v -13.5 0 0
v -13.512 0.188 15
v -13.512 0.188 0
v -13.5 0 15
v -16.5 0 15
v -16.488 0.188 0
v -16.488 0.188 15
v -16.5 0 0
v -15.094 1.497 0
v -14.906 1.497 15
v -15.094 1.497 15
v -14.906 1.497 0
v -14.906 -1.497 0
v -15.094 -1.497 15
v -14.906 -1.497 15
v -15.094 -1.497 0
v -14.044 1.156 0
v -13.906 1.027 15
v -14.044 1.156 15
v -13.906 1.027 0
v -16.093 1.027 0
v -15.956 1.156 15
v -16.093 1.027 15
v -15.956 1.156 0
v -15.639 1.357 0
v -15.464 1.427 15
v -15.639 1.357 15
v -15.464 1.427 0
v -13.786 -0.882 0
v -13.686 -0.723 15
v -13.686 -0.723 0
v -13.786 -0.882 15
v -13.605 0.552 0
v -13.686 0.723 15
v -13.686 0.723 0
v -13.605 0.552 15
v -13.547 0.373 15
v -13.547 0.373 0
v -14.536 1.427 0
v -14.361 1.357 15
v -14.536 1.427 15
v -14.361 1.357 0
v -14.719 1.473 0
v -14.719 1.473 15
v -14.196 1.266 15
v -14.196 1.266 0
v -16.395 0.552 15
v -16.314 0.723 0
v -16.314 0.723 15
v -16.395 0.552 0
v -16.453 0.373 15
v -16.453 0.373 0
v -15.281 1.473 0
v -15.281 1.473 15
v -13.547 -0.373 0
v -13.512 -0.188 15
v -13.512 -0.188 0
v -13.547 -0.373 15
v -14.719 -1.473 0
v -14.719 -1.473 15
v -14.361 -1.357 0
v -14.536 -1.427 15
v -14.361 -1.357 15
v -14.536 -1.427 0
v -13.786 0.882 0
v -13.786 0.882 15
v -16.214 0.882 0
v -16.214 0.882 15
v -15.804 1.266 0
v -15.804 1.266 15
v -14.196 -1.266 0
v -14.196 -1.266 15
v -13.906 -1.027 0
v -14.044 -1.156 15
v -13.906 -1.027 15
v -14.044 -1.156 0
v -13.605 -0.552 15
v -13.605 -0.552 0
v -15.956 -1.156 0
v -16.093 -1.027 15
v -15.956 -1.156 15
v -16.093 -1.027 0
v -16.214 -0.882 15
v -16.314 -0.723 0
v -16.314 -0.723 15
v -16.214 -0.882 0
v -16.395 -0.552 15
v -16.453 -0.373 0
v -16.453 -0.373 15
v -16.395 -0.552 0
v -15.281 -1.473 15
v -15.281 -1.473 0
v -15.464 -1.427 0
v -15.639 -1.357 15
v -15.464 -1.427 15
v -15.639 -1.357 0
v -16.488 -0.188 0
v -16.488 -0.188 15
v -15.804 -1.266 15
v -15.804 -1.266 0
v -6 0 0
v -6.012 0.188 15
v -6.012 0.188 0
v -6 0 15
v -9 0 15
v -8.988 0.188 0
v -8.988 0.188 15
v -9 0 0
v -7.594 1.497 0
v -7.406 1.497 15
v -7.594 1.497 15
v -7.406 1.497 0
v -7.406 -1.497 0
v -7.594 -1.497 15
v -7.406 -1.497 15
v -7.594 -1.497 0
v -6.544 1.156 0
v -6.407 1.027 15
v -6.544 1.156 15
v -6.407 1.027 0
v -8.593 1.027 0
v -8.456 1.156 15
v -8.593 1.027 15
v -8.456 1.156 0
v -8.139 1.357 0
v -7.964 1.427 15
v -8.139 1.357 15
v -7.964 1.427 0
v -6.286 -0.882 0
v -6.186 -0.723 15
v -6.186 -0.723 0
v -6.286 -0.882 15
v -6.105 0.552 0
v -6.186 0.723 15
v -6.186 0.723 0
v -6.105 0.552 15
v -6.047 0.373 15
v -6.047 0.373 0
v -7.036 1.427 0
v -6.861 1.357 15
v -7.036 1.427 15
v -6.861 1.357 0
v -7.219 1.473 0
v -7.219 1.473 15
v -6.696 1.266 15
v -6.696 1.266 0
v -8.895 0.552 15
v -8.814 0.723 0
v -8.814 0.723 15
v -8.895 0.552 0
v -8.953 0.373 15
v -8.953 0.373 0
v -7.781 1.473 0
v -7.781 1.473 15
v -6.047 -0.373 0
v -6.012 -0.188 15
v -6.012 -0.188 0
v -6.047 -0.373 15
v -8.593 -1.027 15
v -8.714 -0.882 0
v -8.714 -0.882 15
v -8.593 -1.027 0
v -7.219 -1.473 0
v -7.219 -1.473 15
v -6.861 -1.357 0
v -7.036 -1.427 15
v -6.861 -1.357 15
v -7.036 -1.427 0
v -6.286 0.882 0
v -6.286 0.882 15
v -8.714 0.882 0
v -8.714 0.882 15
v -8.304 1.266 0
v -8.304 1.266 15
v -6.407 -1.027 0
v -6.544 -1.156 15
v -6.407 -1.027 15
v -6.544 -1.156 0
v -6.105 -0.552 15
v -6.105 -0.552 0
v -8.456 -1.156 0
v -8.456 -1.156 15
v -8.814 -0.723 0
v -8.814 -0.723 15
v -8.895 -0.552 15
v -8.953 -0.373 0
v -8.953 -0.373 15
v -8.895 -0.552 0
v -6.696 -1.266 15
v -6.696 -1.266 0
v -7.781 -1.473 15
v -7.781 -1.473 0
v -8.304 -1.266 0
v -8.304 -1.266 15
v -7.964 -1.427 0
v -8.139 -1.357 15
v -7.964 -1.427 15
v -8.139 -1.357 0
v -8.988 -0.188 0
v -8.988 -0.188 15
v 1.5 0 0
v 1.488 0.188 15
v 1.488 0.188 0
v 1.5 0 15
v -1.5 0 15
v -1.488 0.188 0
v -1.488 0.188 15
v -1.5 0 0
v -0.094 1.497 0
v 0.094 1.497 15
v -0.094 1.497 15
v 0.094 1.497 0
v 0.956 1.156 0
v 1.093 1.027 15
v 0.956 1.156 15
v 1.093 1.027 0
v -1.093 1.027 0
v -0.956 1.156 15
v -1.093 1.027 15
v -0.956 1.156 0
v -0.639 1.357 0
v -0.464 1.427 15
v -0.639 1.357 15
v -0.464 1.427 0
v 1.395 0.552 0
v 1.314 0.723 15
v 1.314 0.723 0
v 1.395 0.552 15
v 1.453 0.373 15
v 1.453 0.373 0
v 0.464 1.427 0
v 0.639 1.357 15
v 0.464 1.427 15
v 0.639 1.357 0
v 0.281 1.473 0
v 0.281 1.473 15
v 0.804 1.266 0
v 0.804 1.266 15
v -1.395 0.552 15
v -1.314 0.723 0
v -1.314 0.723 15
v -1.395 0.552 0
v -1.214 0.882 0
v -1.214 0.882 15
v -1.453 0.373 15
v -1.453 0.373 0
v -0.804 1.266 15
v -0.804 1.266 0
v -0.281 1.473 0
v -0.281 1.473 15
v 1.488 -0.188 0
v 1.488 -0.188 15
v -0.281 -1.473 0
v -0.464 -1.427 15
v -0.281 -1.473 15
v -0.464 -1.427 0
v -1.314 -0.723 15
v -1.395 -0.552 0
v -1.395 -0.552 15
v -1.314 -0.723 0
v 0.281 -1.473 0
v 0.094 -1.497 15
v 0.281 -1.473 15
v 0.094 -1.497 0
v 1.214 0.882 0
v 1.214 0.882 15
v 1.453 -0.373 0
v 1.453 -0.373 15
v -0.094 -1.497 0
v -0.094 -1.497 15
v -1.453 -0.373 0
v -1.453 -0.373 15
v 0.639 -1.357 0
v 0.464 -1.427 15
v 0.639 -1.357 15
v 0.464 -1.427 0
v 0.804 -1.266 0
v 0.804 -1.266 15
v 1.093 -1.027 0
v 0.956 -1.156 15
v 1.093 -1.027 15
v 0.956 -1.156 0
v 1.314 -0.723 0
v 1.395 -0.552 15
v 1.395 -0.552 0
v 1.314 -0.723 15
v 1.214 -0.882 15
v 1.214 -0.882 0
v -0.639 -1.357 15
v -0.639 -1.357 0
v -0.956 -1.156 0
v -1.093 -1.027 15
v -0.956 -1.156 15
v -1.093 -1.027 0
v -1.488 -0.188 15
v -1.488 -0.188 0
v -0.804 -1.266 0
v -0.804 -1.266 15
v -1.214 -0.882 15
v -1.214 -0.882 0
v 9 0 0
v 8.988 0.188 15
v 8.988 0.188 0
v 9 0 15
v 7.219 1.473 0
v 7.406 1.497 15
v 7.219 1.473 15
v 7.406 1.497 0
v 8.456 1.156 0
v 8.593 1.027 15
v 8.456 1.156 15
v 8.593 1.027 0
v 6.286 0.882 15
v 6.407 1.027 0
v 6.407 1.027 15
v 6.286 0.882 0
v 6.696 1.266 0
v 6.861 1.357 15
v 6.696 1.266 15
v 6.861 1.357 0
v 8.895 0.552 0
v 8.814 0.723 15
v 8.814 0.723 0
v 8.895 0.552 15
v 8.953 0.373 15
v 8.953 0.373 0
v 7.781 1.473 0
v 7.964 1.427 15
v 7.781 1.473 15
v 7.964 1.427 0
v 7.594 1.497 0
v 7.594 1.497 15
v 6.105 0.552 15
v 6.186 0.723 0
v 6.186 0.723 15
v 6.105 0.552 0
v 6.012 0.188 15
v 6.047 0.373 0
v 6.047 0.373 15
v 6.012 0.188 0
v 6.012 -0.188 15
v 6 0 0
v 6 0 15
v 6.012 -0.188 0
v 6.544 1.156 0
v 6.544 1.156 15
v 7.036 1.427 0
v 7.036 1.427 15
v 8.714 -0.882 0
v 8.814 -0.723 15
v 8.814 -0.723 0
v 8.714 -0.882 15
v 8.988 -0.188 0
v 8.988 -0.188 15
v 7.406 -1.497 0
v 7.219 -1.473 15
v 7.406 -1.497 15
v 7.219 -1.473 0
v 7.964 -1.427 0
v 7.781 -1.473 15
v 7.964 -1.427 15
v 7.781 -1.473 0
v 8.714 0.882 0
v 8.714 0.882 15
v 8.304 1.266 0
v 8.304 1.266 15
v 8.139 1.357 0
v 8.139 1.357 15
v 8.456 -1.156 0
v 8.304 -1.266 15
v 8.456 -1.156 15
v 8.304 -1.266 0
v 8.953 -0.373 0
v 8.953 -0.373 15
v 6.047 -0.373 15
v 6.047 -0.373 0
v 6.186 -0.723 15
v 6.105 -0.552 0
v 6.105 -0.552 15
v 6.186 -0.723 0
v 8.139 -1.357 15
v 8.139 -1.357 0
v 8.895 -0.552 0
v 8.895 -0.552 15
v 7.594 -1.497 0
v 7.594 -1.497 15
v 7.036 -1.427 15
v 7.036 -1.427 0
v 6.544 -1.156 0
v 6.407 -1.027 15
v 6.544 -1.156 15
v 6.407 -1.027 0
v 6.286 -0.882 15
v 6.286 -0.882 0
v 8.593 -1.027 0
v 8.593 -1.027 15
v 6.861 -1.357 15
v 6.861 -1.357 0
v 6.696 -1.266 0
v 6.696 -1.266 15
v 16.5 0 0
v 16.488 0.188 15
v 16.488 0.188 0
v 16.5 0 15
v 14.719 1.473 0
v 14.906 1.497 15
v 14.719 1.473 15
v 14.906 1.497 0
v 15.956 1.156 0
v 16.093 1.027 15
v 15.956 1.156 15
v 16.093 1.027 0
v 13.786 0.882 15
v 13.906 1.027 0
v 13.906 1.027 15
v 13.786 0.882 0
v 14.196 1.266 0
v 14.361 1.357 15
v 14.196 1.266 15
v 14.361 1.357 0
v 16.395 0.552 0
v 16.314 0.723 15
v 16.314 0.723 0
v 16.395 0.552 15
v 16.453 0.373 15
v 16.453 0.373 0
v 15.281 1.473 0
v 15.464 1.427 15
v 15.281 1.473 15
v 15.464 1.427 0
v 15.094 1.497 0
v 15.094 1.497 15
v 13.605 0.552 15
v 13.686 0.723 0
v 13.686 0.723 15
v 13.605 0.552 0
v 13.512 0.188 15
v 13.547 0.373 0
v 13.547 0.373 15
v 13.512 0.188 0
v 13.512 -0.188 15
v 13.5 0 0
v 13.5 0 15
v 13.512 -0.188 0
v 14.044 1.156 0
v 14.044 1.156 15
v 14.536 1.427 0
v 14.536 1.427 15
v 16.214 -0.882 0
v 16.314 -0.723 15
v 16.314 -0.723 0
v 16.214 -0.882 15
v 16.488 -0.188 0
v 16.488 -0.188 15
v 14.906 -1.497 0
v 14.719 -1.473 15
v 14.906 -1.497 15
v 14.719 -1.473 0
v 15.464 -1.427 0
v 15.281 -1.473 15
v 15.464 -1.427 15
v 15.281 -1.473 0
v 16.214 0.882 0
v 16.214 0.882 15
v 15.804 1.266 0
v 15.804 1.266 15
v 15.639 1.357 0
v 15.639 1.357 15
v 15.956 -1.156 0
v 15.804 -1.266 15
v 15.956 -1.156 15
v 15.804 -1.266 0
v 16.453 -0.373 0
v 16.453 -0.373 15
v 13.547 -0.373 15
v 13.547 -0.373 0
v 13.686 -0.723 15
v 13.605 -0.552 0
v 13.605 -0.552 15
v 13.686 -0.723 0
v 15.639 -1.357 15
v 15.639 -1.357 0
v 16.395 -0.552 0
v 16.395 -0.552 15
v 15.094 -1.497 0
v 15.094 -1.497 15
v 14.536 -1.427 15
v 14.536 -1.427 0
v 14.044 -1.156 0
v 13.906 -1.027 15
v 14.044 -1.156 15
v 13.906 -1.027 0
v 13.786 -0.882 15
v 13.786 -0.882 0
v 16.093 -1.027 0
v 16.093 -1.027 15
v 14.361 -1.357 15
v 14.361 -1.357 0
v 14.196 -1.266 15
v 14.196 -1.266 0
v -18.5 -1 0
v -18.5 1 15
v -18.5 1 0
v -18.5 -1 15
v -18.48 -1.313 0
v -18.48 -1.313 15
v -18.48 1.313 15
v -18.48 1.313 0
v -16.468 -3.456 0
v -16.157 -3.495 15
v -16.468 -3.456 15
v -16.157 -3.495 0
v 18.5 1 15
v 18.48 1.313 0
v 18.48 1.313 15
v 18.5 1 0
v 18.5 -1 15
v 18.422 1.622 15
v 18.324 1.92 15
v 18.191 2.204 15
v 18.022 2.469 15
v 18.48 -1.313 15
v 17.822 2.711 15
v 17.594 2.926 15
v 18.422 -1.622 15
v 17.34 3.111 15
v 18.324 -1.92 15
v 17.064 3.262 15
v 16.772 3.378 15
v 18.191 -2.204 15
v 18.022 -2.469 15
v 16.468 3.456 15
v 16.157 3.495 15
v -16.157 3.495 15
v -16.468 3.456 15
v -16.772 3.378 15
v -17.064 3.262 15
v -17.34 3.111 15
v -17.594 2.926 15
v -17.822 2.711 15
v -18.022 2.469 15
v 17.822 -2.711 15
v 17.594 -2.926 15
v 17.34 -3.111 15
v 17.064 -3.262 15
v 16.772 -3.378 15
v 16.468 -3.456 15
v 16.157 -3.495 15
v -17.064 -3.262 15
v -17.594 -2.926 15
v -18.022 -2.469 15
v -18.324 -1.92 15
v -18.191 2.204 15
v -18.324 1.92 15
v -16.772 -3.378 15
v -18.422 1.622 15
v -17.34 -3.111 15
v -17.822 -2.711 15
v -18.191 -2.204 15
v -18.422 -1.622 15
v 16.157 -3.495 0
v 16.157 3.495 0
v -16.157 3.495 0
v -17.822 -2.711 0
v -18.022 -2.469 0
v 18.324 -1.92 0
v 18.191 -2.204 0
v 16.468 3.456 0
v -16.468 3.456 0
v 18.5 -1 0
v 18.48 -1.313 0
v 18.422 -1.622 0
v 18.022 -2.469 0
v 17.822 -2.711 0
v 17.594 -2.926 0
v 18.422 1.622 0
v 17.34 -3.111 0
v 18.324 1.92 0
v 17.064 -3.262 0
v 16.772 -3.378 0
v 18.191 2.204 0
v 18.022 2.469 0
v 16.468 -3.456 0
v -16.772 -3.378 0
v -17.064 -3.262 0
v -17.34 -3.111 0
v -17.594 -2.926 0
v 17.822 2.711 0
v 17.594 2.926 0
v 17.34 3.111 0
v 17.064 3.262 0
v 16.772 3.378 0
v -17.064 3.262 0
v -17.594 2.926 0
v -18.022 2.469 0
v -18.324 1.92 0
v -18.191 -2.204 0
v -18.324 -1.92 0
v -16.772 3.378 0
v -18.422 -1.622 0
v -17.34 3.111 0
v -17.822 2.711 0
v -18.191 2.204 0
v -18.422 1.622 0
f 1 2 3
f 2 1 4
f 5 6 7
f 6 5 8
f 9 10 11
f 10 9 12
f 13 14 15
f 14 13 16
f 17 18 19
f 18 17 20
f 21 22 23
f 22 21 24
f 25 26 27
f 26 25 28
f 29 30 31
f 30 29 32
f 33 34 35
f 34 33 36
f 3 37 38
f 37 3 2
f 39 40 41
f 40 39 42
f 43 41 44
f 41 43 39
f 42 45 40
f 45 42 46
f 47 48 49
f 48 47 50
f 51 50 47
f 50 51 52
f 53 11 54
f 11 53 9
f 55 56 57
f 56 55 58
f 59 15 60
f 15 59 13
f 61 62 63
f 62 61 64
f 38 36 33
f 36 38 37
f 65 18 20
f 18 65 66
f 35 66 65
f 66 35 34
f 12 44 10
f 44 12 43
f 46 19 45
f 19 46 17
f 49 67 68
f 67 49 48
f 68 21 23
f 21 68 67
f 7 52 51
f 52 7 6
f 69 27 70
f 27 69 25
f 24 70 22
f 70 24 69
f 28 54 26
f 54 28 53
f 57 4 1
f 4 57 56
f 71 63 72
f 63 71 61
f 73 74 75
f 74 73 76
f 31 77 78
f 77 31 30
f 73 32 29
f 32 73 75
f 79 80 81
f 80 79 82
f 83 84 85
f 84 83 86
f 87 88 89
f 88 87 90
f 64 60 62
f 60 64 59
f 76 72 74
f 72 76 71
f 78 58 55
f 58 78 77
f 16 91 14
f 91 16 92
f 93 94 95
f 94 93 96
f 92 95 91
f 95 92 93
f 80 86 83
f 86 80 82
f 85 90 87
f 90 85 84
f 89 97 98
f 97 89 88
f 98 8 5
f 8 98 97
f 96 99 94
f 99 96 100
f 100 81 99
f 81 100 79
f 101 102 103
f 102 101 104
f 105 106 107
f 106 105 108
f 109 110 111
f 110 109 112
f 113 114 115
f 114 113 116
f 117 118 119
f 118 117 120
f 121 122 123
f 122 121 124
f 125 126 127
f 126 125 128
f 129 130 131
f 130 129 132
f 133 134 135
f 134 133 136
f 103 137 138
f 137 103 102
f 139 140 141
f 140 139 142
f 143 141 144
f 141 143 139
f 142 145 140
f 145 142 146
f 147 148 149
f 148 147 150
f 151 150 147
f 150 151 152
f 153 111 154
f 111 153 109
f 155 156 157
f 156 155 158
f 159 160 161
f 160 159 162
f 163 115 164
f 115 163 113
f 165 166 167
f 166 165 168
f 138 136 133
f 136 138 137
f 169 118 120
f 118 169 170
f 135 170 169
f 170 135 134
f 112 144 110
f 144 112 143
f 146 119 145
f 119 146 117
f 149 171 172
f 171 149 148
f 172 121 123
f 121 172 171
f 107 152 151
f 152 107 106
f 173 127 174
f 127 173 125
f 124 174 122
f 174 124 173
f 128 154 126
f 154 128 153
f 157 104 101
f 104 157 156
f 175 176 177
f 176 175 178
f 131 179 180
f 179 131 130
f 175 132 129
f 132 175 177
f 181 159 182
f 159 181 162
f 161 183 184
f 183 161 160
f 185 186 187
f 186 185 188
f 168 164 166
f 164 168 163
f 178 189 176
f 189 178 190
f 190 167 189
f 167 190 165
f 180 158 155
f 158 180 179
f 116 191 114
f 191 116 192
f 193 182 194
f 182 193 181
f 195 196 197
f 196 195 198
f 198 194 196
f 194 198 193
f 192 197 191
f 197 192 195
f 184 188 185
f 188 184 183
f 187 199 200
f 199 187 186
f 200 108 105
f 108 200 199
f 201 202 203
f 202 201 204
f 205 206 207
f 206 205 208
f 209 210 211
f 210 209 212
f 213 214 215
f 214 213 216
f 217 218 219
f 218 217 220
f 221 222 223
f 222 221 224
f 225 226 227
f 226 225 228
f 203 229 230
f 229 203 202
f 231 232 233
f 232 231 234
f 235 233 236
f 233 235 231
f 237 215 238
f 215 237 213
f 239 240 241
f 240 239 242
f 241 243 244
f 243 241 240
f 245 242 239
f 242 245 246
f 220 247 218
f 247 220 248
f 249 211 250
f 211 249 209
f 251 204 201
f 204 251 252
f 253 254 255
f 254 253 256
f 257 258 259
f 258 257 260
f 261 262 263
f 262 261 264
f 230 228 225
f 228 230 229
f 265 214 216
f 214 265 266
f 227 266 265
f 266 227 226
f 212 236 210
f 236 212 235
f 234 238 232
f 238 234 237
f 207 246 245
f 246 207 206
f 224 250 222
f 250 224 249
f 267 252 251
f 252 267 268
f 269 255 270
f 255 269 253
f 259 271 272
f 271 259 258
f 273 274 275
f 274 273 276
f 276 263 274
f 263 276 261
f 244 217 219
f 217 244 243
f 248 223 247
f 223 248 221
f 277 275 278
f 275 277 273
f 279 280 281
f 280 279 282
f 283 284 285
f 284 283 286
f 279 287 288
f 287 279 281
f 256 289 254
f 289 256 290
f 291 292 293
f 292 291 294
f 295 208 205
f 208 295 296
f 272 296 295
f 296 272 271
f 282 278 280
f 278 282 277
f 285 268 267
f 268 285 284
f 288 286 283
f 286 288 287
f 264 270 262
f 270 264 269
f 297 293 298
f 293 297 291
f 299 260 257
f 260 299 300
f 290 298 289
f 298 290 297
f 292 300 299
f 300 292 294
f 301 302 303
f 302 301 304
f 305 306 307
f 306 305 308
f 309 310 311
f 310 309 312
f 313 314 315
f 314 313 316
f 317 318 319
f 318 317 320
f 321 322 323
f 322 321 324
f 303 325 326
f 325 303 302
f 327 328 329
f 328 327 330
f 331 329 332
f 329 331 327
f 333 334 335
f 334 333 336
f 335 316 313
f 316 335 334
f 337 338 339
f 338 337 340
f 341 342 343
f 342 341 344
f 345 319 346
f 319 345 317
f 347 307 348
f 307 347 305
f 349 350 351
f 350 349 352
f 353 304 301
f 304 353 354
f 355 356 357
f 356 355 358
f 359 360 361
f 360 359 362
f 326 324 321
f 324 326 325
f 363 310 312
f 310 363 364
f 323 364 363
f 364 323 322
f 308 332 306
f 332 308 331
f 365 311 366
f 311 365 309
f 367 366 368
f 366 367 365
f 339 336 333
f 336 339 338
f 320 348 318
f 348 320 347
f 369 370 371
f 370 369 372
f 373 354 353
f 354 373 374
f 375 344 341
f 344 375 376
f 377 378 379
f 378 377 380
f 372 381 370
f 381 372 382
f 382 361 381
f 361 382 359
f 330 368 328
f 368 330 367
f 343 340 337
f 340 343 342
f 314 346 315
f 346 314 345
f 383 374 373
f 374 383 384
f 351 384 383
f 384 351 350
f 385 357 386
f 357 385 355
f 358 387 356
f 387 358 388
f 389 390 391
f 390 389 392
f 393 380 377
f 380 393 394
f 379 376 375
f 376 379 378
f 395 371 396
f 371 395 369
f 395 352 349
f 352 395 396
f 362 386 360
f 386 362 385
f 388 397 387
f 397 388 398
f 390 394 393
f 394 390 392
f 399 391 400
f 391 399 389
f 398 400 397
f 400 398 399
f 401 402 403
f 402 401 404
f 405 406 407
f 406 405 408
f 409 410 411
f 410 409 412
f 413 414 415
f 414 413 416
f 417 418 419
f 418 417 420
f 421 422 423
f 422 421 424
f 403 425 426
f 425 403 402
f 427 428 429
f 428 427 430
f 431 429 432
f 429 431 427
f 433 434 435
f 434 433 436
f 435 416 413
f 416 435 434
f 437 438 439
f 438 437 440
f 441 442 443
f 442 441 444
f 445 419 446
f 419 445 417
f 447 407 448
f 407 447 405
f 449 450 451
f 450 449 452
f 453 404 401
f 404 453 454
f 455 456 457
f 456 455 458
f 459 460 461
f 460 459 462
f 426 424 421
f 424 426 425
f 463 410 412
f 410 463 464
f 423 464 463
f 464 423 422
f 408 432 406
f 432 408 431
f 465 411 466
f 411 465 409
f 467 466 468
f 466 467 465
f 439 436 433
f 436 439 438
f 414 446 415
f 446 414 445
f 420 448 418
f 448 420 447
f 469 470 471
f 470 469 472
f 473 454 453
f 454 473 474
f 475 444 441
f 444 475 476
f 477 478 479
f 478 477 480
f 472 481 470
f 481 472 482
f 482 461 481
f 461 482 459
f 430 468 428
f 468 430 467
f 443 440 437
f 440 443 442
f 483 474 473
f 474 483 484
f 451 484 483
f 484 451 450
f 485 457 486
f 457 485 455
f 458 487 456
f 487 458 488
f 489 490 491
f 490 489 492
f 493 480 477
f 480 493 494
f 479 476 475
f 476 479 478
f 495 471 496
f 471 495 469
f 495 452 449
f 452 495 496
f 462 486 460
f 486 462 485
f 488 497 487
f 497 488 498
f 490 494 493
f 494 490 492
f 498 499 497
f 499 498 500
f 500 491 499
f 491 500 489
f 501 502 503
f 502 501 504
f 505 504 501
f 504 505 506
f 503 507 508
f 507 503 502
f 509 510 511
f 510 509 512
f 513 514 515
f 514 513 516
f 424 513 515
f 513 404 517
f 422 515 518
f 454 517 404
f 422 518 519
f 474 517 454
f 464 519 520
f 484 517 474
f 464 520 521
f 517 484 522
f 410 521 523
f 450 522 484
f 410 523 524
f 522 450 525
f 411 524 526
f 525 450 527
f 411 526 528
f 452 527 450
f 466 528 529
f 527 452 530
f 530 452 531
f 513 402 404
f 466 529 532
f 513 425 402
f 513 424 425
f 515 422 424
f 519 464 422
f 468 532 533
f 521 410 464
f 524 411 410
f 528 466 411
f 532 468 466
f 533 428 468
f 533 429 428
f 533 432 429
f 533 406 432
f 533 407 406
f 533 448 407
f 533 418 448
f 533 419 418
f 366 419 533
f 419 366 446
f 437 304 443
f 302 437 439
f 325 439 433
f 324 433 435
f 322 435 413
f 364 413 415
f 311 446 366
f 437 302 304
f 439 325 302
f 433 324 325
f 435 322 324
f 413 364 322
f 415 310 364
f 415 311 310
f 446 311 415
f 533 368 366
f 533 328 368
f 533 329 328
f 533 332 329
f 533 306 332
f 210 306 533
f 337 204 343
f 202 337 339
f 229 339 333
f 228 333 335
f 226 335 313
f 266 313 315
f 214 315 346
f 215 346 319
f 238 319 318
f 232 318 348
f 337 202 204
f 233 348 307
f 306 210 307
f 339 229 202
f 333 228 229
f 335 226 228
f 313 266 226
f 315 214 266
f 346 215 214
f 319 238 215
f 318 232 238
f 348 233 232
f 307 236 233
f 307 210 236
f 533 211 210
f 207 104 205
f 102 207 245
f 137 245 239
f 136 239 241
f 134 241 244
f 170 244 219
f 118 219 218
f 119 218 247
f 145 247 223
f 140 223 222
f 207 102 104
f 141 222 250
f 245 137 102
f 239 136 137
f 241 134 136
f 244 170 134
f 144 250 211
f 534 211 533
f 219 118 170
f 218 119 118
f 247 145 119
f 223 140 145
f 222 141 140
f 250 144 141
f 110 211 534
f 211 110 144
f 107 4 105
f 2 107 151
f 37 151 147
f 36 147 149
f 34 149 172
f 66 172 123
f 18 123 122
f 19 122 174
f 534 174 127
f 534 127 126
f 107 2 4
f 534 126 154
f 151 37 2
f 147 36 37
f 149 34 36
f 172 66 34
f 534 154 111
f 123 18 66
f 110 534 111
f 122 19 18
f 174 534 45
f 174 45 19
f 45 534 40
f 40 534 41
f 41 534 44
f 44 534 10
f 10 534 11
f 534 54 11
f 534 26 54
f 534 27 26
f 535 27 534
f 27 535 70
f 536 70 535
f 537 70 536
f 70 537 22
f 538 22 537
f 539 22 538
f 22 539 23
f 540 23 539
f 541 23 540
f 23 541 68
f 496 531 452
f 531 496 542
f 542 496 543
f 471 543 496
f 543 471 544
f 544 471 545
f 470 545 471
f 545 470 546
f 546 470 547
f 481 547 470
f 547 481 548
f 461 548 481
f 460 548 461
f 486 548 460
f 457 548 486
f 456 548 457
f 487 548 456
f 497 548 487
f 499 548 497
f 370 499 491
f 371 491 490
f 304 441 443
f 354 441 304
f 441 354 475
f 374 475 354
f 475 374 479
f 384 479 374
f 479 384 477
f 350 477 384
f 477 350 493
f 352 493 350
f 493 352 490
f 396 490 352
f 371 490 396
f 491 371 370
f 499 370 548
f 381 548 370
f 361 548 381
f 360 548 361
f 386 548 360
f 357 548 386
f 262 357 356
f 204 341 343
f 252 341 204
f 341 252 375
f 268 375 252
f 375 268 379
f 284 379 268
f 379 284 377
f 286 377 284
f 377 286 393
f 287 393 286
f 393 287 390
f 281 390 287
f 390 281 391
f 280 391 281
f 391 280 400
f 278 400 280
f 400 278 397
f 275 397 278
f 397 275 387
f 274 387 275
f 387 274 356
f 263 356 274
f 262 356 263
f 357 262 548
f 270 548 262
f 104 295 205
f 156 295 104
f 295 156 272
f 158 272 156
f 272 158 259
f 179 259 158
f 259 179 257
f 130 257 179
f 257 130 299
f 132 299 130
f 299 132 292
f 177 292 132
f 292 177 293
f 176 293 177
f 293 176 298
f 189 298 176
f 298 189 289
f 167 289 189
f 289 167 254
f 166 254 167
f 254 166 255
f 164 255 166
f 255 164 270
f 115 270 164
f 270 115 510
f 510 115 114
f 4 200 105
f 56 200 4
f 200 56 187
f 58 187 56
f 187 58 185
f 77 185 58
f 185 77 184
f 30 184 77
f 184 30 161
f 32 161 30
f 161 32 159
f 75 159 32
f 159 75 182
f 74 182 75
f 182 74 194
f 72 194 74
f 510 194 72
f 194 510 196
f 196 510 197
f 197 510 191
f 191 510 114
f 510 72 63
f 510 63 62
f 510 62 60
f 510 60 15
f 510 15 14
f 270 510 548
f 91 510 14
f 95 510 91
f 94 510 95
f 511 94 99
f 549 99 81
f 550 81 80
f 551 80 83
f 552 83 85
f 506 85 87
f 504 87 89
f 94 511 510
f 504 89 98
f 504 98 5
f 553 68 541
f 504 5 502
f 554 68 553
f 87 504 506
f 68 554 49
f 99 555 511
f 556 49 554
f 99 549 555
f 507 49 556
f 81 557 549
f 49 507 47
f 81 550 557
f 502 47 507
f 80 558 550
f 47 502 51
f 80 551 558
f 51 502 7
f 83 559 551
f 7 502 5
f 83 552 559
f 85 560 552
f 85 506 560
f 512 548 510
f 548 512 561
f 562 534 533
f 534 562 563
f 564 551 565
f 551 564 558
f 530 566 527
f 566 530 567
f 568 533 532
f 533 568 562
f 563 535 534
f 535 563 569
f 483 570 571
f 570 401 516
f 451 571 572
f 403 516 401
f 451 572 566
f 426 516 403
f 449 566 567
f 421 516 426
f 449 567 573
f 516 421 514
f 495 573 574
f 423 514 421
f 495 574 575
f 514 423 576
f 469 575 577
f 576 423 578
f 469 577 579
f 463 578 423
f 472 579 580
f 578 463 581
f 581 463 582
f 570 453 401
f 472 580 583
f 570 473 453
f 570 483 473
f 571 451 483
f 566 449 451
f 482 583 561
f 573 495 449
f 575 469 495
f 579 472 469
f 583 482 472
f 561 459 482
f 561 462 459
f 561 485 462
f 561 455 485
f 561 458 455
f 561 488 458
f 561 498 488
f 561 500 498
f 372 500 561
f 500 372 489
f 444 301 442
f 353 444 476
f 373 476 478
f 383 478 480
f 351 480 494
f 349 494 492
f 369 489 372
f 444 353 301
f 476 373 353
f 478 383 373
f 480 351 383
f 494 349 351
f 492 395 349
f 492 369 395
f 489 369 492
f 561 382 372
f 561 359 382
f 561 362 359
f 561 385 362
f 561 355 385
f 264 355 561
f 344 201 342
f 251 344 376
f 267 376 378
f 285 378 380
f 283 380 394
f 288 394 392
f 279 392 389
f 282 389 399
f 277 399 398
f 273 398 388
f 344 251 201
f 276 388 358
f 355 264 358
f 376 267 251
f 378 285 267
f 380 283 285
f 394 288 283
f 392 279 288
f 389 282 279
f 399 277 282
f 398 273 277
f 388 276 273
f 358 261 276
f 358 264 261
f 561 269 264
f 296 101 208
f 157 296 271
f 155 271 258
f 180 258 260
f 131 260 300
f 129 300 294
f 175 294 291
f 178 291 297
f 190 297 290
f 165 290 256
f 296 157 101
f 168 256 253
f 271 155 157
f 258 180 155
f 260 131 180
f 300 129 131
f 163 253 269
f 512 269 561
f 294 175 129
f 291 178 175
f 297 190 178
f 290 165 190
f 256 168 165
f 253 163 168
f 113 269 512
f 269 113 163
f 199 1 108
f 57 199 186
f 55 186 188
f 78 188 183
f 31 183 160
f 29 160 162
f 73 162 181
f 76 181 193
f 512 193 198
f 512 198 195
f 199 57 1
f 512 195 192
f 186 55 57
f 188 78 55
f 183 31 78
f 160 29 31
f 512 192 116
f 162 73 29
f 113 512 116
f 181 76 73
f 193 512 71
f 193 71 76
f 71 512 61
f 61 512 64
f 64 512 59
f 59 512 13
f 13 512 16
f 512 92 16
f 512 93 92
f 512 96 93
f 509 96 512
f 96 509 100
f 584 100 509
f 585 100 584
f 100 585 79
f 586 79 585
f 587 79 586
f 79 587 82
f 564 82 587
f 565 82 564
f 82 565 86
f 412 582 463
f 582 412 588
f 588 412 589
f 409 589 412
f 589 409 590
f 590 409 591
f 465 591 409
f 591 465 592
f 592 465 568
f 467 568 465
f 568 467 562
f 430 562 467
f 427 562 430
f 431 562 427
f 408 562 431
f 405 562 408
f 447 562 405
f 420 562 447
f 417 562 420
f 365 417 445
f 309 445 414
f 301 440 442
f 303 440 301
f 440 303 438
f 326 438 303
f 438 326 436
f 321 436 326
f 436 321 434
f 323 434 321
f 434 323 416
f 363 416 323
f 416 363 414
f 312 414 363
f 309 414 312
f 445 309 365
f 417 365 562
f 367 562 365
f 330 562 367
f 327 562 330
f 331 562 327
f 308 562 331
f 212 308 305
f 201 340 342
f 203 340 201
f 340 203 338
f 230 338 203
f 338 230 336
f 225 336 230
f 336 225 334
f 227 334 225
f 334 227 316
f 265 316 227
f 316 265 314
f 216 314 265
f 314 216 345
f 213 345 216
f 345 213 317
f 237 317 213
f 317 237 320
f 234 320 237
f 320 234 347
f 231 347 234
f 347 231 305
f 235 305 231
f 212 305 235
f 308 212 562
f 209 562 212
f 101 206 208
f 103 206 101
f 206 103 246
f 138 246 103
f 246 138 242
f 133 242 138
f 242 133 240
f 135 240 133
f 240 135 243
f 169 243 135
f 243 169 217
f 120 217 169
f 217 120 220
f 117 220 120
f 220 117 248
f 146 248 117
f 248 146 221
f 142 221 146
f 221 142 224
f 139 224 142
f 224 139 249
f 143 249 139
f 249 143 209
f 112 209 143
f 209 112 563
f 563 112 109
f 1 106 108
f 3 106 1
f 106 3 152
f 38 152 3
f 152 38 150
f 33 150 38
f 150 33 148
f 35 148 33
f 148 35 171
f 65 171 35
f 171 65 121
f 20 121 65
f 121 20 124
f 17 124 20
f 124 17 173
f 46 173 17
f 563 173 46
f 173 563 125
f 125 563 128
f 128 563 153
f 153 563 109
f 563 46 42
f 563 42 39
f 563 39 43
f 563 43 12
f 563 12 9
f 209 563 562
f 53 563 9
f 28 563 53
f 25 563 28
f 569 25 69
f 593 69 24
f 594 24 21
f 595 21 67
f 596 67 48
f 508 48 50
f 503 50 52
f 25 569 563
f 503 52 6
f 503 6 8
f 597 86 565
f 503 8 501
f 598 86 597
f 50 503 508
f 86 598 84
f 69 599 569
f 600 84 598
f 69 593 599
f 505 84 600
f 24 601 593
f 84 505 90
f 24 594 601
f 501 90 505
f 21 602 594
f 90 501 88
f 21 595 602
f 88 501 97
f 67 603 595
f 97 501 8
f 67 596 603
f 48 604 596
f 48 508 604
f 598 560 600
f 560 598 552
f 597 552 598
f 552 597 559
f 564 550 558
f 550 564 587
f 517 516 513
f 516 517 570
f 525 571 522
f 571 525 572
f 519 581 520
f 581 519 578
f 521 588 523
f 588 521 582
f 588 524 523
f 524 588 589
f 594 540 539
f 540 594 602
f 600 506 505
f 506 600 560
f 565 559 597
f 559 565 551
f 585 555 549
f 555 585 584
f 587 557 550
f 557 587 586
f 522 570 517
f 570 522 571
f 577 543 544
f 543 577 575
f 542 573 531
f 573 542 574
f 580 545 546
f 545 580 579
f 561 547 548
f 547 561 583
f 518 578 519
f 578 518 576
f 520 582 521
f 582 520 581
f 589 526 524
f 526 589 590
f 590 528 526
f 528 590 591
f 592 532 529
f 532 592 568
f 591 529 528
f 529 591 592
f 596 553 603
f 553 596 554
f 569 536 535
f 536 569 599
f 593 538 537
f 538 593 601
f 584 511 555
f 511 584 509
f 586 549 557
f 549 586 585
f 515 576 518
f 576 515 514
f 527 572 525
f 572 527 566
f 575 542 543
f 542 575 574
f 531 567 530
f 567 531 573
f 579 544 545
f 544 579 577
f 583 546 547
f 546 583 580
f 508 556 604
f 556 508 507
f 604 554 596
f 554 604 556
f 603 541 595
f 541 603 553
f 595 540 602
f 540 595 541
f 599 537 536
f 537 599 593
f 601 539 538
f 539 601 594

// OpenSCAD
$fn = 50;


difference() {
	union() {
		translate(v = [0, 0, 0]) {
			rotate(a = [0, 0, 0]) {
				hull() {
					translate(v = [-16.0000000000, 1.0000000000, 0]) {
						rotate(a = [0, 0, 0]) {
							translate(v = [0, 0, 0]) {
								rotate(a = [0, 0, 0]) {
									cylinder(h = 15, r = 2.5000000000);
								}
							}
						}
					}
					translate(v = [16.0000000000, 1.0000000000, 0]) {
						rotate(a = [0, 0, 0]) {
							translate(v = [0, 0, 0]) {
								rotate(a = [0, 0, 0]) {
									cylinder(h = 15, r = 2.5000000000);
								}
							}
						}
					}
					translate(v = [-16.0000000000, -1.0000000000, 0]) {
						rotate(a = [0, 0, 0]) {
							translate(v = [0, 0, 0]) {
								rotate(a = [0, 0, 0]) {
									cylinder(h = 15, r = 2.5000000000);
								}
							}
						}
					}
					translate(v = [16.0000000000, -1.0000000000, 0]) {
						rotate(a = [0, 0, 0]) {
							translate(v = [0, 0, 0]) {
								rotate(a = [0, 0, 0]) {
									cylinder(h = 15, r = 2.5000000000);
								}
							}
						}
					}
				}
			}
		}
	}
	union() {
		translate(v = [-15.0000000000, 0.0000000000, 0]) {
			rotate(a = [0, 0, 0]) {
				translate(v = [0, 0, -50]) {
					rotate(a = [0, 0, 0]) {
						cylinder(h = 100, r = 1.5000000000);
					}
				}
			}
		}
		translate(v = [-7.5000000000, 0.0000000000, 0]) {
			rotate(a = [0, 0, 0]) {
				translate(v = [0, 0, -50]) {
					rotate(a = [0, 0, 0]) {
						cylinder(h = 100, r = 1.5000000000);
					}
				}
			}
		}
		translate(v = [0.0000000000, 0.0000000000, 0]) {
			rotate(a = [0, 0, 0]) {
				translate(v = [0, 0, -50]) {
					rotate(a = [0, 0, 0]) {
						cylinder(h = 100, r = 1.5000000000);
					}
				}
			}
		}
		translate(v = [7.5000000000, 0.0000000000, 0]) {
			rotate(a = [0, 0, 0]) {
				translate(v = [0, 0, -50]) {
					rotate(a = [0, 0, 0]) {
						cylinder(h = 100, r = 1.5000000000);
					}
				}
			}
		}
		translate(v = [15.0000000000, 0.0000000000, 0]) {
			rotate(a = [0, 0, 0]) {
				translate(v = [0, 0, -50]) {
					rotate(a = [0, 0, 0]) {
						cylinder(h = 100, r = 1.5000000000);
					}
				}
			}
		}
	}
}
